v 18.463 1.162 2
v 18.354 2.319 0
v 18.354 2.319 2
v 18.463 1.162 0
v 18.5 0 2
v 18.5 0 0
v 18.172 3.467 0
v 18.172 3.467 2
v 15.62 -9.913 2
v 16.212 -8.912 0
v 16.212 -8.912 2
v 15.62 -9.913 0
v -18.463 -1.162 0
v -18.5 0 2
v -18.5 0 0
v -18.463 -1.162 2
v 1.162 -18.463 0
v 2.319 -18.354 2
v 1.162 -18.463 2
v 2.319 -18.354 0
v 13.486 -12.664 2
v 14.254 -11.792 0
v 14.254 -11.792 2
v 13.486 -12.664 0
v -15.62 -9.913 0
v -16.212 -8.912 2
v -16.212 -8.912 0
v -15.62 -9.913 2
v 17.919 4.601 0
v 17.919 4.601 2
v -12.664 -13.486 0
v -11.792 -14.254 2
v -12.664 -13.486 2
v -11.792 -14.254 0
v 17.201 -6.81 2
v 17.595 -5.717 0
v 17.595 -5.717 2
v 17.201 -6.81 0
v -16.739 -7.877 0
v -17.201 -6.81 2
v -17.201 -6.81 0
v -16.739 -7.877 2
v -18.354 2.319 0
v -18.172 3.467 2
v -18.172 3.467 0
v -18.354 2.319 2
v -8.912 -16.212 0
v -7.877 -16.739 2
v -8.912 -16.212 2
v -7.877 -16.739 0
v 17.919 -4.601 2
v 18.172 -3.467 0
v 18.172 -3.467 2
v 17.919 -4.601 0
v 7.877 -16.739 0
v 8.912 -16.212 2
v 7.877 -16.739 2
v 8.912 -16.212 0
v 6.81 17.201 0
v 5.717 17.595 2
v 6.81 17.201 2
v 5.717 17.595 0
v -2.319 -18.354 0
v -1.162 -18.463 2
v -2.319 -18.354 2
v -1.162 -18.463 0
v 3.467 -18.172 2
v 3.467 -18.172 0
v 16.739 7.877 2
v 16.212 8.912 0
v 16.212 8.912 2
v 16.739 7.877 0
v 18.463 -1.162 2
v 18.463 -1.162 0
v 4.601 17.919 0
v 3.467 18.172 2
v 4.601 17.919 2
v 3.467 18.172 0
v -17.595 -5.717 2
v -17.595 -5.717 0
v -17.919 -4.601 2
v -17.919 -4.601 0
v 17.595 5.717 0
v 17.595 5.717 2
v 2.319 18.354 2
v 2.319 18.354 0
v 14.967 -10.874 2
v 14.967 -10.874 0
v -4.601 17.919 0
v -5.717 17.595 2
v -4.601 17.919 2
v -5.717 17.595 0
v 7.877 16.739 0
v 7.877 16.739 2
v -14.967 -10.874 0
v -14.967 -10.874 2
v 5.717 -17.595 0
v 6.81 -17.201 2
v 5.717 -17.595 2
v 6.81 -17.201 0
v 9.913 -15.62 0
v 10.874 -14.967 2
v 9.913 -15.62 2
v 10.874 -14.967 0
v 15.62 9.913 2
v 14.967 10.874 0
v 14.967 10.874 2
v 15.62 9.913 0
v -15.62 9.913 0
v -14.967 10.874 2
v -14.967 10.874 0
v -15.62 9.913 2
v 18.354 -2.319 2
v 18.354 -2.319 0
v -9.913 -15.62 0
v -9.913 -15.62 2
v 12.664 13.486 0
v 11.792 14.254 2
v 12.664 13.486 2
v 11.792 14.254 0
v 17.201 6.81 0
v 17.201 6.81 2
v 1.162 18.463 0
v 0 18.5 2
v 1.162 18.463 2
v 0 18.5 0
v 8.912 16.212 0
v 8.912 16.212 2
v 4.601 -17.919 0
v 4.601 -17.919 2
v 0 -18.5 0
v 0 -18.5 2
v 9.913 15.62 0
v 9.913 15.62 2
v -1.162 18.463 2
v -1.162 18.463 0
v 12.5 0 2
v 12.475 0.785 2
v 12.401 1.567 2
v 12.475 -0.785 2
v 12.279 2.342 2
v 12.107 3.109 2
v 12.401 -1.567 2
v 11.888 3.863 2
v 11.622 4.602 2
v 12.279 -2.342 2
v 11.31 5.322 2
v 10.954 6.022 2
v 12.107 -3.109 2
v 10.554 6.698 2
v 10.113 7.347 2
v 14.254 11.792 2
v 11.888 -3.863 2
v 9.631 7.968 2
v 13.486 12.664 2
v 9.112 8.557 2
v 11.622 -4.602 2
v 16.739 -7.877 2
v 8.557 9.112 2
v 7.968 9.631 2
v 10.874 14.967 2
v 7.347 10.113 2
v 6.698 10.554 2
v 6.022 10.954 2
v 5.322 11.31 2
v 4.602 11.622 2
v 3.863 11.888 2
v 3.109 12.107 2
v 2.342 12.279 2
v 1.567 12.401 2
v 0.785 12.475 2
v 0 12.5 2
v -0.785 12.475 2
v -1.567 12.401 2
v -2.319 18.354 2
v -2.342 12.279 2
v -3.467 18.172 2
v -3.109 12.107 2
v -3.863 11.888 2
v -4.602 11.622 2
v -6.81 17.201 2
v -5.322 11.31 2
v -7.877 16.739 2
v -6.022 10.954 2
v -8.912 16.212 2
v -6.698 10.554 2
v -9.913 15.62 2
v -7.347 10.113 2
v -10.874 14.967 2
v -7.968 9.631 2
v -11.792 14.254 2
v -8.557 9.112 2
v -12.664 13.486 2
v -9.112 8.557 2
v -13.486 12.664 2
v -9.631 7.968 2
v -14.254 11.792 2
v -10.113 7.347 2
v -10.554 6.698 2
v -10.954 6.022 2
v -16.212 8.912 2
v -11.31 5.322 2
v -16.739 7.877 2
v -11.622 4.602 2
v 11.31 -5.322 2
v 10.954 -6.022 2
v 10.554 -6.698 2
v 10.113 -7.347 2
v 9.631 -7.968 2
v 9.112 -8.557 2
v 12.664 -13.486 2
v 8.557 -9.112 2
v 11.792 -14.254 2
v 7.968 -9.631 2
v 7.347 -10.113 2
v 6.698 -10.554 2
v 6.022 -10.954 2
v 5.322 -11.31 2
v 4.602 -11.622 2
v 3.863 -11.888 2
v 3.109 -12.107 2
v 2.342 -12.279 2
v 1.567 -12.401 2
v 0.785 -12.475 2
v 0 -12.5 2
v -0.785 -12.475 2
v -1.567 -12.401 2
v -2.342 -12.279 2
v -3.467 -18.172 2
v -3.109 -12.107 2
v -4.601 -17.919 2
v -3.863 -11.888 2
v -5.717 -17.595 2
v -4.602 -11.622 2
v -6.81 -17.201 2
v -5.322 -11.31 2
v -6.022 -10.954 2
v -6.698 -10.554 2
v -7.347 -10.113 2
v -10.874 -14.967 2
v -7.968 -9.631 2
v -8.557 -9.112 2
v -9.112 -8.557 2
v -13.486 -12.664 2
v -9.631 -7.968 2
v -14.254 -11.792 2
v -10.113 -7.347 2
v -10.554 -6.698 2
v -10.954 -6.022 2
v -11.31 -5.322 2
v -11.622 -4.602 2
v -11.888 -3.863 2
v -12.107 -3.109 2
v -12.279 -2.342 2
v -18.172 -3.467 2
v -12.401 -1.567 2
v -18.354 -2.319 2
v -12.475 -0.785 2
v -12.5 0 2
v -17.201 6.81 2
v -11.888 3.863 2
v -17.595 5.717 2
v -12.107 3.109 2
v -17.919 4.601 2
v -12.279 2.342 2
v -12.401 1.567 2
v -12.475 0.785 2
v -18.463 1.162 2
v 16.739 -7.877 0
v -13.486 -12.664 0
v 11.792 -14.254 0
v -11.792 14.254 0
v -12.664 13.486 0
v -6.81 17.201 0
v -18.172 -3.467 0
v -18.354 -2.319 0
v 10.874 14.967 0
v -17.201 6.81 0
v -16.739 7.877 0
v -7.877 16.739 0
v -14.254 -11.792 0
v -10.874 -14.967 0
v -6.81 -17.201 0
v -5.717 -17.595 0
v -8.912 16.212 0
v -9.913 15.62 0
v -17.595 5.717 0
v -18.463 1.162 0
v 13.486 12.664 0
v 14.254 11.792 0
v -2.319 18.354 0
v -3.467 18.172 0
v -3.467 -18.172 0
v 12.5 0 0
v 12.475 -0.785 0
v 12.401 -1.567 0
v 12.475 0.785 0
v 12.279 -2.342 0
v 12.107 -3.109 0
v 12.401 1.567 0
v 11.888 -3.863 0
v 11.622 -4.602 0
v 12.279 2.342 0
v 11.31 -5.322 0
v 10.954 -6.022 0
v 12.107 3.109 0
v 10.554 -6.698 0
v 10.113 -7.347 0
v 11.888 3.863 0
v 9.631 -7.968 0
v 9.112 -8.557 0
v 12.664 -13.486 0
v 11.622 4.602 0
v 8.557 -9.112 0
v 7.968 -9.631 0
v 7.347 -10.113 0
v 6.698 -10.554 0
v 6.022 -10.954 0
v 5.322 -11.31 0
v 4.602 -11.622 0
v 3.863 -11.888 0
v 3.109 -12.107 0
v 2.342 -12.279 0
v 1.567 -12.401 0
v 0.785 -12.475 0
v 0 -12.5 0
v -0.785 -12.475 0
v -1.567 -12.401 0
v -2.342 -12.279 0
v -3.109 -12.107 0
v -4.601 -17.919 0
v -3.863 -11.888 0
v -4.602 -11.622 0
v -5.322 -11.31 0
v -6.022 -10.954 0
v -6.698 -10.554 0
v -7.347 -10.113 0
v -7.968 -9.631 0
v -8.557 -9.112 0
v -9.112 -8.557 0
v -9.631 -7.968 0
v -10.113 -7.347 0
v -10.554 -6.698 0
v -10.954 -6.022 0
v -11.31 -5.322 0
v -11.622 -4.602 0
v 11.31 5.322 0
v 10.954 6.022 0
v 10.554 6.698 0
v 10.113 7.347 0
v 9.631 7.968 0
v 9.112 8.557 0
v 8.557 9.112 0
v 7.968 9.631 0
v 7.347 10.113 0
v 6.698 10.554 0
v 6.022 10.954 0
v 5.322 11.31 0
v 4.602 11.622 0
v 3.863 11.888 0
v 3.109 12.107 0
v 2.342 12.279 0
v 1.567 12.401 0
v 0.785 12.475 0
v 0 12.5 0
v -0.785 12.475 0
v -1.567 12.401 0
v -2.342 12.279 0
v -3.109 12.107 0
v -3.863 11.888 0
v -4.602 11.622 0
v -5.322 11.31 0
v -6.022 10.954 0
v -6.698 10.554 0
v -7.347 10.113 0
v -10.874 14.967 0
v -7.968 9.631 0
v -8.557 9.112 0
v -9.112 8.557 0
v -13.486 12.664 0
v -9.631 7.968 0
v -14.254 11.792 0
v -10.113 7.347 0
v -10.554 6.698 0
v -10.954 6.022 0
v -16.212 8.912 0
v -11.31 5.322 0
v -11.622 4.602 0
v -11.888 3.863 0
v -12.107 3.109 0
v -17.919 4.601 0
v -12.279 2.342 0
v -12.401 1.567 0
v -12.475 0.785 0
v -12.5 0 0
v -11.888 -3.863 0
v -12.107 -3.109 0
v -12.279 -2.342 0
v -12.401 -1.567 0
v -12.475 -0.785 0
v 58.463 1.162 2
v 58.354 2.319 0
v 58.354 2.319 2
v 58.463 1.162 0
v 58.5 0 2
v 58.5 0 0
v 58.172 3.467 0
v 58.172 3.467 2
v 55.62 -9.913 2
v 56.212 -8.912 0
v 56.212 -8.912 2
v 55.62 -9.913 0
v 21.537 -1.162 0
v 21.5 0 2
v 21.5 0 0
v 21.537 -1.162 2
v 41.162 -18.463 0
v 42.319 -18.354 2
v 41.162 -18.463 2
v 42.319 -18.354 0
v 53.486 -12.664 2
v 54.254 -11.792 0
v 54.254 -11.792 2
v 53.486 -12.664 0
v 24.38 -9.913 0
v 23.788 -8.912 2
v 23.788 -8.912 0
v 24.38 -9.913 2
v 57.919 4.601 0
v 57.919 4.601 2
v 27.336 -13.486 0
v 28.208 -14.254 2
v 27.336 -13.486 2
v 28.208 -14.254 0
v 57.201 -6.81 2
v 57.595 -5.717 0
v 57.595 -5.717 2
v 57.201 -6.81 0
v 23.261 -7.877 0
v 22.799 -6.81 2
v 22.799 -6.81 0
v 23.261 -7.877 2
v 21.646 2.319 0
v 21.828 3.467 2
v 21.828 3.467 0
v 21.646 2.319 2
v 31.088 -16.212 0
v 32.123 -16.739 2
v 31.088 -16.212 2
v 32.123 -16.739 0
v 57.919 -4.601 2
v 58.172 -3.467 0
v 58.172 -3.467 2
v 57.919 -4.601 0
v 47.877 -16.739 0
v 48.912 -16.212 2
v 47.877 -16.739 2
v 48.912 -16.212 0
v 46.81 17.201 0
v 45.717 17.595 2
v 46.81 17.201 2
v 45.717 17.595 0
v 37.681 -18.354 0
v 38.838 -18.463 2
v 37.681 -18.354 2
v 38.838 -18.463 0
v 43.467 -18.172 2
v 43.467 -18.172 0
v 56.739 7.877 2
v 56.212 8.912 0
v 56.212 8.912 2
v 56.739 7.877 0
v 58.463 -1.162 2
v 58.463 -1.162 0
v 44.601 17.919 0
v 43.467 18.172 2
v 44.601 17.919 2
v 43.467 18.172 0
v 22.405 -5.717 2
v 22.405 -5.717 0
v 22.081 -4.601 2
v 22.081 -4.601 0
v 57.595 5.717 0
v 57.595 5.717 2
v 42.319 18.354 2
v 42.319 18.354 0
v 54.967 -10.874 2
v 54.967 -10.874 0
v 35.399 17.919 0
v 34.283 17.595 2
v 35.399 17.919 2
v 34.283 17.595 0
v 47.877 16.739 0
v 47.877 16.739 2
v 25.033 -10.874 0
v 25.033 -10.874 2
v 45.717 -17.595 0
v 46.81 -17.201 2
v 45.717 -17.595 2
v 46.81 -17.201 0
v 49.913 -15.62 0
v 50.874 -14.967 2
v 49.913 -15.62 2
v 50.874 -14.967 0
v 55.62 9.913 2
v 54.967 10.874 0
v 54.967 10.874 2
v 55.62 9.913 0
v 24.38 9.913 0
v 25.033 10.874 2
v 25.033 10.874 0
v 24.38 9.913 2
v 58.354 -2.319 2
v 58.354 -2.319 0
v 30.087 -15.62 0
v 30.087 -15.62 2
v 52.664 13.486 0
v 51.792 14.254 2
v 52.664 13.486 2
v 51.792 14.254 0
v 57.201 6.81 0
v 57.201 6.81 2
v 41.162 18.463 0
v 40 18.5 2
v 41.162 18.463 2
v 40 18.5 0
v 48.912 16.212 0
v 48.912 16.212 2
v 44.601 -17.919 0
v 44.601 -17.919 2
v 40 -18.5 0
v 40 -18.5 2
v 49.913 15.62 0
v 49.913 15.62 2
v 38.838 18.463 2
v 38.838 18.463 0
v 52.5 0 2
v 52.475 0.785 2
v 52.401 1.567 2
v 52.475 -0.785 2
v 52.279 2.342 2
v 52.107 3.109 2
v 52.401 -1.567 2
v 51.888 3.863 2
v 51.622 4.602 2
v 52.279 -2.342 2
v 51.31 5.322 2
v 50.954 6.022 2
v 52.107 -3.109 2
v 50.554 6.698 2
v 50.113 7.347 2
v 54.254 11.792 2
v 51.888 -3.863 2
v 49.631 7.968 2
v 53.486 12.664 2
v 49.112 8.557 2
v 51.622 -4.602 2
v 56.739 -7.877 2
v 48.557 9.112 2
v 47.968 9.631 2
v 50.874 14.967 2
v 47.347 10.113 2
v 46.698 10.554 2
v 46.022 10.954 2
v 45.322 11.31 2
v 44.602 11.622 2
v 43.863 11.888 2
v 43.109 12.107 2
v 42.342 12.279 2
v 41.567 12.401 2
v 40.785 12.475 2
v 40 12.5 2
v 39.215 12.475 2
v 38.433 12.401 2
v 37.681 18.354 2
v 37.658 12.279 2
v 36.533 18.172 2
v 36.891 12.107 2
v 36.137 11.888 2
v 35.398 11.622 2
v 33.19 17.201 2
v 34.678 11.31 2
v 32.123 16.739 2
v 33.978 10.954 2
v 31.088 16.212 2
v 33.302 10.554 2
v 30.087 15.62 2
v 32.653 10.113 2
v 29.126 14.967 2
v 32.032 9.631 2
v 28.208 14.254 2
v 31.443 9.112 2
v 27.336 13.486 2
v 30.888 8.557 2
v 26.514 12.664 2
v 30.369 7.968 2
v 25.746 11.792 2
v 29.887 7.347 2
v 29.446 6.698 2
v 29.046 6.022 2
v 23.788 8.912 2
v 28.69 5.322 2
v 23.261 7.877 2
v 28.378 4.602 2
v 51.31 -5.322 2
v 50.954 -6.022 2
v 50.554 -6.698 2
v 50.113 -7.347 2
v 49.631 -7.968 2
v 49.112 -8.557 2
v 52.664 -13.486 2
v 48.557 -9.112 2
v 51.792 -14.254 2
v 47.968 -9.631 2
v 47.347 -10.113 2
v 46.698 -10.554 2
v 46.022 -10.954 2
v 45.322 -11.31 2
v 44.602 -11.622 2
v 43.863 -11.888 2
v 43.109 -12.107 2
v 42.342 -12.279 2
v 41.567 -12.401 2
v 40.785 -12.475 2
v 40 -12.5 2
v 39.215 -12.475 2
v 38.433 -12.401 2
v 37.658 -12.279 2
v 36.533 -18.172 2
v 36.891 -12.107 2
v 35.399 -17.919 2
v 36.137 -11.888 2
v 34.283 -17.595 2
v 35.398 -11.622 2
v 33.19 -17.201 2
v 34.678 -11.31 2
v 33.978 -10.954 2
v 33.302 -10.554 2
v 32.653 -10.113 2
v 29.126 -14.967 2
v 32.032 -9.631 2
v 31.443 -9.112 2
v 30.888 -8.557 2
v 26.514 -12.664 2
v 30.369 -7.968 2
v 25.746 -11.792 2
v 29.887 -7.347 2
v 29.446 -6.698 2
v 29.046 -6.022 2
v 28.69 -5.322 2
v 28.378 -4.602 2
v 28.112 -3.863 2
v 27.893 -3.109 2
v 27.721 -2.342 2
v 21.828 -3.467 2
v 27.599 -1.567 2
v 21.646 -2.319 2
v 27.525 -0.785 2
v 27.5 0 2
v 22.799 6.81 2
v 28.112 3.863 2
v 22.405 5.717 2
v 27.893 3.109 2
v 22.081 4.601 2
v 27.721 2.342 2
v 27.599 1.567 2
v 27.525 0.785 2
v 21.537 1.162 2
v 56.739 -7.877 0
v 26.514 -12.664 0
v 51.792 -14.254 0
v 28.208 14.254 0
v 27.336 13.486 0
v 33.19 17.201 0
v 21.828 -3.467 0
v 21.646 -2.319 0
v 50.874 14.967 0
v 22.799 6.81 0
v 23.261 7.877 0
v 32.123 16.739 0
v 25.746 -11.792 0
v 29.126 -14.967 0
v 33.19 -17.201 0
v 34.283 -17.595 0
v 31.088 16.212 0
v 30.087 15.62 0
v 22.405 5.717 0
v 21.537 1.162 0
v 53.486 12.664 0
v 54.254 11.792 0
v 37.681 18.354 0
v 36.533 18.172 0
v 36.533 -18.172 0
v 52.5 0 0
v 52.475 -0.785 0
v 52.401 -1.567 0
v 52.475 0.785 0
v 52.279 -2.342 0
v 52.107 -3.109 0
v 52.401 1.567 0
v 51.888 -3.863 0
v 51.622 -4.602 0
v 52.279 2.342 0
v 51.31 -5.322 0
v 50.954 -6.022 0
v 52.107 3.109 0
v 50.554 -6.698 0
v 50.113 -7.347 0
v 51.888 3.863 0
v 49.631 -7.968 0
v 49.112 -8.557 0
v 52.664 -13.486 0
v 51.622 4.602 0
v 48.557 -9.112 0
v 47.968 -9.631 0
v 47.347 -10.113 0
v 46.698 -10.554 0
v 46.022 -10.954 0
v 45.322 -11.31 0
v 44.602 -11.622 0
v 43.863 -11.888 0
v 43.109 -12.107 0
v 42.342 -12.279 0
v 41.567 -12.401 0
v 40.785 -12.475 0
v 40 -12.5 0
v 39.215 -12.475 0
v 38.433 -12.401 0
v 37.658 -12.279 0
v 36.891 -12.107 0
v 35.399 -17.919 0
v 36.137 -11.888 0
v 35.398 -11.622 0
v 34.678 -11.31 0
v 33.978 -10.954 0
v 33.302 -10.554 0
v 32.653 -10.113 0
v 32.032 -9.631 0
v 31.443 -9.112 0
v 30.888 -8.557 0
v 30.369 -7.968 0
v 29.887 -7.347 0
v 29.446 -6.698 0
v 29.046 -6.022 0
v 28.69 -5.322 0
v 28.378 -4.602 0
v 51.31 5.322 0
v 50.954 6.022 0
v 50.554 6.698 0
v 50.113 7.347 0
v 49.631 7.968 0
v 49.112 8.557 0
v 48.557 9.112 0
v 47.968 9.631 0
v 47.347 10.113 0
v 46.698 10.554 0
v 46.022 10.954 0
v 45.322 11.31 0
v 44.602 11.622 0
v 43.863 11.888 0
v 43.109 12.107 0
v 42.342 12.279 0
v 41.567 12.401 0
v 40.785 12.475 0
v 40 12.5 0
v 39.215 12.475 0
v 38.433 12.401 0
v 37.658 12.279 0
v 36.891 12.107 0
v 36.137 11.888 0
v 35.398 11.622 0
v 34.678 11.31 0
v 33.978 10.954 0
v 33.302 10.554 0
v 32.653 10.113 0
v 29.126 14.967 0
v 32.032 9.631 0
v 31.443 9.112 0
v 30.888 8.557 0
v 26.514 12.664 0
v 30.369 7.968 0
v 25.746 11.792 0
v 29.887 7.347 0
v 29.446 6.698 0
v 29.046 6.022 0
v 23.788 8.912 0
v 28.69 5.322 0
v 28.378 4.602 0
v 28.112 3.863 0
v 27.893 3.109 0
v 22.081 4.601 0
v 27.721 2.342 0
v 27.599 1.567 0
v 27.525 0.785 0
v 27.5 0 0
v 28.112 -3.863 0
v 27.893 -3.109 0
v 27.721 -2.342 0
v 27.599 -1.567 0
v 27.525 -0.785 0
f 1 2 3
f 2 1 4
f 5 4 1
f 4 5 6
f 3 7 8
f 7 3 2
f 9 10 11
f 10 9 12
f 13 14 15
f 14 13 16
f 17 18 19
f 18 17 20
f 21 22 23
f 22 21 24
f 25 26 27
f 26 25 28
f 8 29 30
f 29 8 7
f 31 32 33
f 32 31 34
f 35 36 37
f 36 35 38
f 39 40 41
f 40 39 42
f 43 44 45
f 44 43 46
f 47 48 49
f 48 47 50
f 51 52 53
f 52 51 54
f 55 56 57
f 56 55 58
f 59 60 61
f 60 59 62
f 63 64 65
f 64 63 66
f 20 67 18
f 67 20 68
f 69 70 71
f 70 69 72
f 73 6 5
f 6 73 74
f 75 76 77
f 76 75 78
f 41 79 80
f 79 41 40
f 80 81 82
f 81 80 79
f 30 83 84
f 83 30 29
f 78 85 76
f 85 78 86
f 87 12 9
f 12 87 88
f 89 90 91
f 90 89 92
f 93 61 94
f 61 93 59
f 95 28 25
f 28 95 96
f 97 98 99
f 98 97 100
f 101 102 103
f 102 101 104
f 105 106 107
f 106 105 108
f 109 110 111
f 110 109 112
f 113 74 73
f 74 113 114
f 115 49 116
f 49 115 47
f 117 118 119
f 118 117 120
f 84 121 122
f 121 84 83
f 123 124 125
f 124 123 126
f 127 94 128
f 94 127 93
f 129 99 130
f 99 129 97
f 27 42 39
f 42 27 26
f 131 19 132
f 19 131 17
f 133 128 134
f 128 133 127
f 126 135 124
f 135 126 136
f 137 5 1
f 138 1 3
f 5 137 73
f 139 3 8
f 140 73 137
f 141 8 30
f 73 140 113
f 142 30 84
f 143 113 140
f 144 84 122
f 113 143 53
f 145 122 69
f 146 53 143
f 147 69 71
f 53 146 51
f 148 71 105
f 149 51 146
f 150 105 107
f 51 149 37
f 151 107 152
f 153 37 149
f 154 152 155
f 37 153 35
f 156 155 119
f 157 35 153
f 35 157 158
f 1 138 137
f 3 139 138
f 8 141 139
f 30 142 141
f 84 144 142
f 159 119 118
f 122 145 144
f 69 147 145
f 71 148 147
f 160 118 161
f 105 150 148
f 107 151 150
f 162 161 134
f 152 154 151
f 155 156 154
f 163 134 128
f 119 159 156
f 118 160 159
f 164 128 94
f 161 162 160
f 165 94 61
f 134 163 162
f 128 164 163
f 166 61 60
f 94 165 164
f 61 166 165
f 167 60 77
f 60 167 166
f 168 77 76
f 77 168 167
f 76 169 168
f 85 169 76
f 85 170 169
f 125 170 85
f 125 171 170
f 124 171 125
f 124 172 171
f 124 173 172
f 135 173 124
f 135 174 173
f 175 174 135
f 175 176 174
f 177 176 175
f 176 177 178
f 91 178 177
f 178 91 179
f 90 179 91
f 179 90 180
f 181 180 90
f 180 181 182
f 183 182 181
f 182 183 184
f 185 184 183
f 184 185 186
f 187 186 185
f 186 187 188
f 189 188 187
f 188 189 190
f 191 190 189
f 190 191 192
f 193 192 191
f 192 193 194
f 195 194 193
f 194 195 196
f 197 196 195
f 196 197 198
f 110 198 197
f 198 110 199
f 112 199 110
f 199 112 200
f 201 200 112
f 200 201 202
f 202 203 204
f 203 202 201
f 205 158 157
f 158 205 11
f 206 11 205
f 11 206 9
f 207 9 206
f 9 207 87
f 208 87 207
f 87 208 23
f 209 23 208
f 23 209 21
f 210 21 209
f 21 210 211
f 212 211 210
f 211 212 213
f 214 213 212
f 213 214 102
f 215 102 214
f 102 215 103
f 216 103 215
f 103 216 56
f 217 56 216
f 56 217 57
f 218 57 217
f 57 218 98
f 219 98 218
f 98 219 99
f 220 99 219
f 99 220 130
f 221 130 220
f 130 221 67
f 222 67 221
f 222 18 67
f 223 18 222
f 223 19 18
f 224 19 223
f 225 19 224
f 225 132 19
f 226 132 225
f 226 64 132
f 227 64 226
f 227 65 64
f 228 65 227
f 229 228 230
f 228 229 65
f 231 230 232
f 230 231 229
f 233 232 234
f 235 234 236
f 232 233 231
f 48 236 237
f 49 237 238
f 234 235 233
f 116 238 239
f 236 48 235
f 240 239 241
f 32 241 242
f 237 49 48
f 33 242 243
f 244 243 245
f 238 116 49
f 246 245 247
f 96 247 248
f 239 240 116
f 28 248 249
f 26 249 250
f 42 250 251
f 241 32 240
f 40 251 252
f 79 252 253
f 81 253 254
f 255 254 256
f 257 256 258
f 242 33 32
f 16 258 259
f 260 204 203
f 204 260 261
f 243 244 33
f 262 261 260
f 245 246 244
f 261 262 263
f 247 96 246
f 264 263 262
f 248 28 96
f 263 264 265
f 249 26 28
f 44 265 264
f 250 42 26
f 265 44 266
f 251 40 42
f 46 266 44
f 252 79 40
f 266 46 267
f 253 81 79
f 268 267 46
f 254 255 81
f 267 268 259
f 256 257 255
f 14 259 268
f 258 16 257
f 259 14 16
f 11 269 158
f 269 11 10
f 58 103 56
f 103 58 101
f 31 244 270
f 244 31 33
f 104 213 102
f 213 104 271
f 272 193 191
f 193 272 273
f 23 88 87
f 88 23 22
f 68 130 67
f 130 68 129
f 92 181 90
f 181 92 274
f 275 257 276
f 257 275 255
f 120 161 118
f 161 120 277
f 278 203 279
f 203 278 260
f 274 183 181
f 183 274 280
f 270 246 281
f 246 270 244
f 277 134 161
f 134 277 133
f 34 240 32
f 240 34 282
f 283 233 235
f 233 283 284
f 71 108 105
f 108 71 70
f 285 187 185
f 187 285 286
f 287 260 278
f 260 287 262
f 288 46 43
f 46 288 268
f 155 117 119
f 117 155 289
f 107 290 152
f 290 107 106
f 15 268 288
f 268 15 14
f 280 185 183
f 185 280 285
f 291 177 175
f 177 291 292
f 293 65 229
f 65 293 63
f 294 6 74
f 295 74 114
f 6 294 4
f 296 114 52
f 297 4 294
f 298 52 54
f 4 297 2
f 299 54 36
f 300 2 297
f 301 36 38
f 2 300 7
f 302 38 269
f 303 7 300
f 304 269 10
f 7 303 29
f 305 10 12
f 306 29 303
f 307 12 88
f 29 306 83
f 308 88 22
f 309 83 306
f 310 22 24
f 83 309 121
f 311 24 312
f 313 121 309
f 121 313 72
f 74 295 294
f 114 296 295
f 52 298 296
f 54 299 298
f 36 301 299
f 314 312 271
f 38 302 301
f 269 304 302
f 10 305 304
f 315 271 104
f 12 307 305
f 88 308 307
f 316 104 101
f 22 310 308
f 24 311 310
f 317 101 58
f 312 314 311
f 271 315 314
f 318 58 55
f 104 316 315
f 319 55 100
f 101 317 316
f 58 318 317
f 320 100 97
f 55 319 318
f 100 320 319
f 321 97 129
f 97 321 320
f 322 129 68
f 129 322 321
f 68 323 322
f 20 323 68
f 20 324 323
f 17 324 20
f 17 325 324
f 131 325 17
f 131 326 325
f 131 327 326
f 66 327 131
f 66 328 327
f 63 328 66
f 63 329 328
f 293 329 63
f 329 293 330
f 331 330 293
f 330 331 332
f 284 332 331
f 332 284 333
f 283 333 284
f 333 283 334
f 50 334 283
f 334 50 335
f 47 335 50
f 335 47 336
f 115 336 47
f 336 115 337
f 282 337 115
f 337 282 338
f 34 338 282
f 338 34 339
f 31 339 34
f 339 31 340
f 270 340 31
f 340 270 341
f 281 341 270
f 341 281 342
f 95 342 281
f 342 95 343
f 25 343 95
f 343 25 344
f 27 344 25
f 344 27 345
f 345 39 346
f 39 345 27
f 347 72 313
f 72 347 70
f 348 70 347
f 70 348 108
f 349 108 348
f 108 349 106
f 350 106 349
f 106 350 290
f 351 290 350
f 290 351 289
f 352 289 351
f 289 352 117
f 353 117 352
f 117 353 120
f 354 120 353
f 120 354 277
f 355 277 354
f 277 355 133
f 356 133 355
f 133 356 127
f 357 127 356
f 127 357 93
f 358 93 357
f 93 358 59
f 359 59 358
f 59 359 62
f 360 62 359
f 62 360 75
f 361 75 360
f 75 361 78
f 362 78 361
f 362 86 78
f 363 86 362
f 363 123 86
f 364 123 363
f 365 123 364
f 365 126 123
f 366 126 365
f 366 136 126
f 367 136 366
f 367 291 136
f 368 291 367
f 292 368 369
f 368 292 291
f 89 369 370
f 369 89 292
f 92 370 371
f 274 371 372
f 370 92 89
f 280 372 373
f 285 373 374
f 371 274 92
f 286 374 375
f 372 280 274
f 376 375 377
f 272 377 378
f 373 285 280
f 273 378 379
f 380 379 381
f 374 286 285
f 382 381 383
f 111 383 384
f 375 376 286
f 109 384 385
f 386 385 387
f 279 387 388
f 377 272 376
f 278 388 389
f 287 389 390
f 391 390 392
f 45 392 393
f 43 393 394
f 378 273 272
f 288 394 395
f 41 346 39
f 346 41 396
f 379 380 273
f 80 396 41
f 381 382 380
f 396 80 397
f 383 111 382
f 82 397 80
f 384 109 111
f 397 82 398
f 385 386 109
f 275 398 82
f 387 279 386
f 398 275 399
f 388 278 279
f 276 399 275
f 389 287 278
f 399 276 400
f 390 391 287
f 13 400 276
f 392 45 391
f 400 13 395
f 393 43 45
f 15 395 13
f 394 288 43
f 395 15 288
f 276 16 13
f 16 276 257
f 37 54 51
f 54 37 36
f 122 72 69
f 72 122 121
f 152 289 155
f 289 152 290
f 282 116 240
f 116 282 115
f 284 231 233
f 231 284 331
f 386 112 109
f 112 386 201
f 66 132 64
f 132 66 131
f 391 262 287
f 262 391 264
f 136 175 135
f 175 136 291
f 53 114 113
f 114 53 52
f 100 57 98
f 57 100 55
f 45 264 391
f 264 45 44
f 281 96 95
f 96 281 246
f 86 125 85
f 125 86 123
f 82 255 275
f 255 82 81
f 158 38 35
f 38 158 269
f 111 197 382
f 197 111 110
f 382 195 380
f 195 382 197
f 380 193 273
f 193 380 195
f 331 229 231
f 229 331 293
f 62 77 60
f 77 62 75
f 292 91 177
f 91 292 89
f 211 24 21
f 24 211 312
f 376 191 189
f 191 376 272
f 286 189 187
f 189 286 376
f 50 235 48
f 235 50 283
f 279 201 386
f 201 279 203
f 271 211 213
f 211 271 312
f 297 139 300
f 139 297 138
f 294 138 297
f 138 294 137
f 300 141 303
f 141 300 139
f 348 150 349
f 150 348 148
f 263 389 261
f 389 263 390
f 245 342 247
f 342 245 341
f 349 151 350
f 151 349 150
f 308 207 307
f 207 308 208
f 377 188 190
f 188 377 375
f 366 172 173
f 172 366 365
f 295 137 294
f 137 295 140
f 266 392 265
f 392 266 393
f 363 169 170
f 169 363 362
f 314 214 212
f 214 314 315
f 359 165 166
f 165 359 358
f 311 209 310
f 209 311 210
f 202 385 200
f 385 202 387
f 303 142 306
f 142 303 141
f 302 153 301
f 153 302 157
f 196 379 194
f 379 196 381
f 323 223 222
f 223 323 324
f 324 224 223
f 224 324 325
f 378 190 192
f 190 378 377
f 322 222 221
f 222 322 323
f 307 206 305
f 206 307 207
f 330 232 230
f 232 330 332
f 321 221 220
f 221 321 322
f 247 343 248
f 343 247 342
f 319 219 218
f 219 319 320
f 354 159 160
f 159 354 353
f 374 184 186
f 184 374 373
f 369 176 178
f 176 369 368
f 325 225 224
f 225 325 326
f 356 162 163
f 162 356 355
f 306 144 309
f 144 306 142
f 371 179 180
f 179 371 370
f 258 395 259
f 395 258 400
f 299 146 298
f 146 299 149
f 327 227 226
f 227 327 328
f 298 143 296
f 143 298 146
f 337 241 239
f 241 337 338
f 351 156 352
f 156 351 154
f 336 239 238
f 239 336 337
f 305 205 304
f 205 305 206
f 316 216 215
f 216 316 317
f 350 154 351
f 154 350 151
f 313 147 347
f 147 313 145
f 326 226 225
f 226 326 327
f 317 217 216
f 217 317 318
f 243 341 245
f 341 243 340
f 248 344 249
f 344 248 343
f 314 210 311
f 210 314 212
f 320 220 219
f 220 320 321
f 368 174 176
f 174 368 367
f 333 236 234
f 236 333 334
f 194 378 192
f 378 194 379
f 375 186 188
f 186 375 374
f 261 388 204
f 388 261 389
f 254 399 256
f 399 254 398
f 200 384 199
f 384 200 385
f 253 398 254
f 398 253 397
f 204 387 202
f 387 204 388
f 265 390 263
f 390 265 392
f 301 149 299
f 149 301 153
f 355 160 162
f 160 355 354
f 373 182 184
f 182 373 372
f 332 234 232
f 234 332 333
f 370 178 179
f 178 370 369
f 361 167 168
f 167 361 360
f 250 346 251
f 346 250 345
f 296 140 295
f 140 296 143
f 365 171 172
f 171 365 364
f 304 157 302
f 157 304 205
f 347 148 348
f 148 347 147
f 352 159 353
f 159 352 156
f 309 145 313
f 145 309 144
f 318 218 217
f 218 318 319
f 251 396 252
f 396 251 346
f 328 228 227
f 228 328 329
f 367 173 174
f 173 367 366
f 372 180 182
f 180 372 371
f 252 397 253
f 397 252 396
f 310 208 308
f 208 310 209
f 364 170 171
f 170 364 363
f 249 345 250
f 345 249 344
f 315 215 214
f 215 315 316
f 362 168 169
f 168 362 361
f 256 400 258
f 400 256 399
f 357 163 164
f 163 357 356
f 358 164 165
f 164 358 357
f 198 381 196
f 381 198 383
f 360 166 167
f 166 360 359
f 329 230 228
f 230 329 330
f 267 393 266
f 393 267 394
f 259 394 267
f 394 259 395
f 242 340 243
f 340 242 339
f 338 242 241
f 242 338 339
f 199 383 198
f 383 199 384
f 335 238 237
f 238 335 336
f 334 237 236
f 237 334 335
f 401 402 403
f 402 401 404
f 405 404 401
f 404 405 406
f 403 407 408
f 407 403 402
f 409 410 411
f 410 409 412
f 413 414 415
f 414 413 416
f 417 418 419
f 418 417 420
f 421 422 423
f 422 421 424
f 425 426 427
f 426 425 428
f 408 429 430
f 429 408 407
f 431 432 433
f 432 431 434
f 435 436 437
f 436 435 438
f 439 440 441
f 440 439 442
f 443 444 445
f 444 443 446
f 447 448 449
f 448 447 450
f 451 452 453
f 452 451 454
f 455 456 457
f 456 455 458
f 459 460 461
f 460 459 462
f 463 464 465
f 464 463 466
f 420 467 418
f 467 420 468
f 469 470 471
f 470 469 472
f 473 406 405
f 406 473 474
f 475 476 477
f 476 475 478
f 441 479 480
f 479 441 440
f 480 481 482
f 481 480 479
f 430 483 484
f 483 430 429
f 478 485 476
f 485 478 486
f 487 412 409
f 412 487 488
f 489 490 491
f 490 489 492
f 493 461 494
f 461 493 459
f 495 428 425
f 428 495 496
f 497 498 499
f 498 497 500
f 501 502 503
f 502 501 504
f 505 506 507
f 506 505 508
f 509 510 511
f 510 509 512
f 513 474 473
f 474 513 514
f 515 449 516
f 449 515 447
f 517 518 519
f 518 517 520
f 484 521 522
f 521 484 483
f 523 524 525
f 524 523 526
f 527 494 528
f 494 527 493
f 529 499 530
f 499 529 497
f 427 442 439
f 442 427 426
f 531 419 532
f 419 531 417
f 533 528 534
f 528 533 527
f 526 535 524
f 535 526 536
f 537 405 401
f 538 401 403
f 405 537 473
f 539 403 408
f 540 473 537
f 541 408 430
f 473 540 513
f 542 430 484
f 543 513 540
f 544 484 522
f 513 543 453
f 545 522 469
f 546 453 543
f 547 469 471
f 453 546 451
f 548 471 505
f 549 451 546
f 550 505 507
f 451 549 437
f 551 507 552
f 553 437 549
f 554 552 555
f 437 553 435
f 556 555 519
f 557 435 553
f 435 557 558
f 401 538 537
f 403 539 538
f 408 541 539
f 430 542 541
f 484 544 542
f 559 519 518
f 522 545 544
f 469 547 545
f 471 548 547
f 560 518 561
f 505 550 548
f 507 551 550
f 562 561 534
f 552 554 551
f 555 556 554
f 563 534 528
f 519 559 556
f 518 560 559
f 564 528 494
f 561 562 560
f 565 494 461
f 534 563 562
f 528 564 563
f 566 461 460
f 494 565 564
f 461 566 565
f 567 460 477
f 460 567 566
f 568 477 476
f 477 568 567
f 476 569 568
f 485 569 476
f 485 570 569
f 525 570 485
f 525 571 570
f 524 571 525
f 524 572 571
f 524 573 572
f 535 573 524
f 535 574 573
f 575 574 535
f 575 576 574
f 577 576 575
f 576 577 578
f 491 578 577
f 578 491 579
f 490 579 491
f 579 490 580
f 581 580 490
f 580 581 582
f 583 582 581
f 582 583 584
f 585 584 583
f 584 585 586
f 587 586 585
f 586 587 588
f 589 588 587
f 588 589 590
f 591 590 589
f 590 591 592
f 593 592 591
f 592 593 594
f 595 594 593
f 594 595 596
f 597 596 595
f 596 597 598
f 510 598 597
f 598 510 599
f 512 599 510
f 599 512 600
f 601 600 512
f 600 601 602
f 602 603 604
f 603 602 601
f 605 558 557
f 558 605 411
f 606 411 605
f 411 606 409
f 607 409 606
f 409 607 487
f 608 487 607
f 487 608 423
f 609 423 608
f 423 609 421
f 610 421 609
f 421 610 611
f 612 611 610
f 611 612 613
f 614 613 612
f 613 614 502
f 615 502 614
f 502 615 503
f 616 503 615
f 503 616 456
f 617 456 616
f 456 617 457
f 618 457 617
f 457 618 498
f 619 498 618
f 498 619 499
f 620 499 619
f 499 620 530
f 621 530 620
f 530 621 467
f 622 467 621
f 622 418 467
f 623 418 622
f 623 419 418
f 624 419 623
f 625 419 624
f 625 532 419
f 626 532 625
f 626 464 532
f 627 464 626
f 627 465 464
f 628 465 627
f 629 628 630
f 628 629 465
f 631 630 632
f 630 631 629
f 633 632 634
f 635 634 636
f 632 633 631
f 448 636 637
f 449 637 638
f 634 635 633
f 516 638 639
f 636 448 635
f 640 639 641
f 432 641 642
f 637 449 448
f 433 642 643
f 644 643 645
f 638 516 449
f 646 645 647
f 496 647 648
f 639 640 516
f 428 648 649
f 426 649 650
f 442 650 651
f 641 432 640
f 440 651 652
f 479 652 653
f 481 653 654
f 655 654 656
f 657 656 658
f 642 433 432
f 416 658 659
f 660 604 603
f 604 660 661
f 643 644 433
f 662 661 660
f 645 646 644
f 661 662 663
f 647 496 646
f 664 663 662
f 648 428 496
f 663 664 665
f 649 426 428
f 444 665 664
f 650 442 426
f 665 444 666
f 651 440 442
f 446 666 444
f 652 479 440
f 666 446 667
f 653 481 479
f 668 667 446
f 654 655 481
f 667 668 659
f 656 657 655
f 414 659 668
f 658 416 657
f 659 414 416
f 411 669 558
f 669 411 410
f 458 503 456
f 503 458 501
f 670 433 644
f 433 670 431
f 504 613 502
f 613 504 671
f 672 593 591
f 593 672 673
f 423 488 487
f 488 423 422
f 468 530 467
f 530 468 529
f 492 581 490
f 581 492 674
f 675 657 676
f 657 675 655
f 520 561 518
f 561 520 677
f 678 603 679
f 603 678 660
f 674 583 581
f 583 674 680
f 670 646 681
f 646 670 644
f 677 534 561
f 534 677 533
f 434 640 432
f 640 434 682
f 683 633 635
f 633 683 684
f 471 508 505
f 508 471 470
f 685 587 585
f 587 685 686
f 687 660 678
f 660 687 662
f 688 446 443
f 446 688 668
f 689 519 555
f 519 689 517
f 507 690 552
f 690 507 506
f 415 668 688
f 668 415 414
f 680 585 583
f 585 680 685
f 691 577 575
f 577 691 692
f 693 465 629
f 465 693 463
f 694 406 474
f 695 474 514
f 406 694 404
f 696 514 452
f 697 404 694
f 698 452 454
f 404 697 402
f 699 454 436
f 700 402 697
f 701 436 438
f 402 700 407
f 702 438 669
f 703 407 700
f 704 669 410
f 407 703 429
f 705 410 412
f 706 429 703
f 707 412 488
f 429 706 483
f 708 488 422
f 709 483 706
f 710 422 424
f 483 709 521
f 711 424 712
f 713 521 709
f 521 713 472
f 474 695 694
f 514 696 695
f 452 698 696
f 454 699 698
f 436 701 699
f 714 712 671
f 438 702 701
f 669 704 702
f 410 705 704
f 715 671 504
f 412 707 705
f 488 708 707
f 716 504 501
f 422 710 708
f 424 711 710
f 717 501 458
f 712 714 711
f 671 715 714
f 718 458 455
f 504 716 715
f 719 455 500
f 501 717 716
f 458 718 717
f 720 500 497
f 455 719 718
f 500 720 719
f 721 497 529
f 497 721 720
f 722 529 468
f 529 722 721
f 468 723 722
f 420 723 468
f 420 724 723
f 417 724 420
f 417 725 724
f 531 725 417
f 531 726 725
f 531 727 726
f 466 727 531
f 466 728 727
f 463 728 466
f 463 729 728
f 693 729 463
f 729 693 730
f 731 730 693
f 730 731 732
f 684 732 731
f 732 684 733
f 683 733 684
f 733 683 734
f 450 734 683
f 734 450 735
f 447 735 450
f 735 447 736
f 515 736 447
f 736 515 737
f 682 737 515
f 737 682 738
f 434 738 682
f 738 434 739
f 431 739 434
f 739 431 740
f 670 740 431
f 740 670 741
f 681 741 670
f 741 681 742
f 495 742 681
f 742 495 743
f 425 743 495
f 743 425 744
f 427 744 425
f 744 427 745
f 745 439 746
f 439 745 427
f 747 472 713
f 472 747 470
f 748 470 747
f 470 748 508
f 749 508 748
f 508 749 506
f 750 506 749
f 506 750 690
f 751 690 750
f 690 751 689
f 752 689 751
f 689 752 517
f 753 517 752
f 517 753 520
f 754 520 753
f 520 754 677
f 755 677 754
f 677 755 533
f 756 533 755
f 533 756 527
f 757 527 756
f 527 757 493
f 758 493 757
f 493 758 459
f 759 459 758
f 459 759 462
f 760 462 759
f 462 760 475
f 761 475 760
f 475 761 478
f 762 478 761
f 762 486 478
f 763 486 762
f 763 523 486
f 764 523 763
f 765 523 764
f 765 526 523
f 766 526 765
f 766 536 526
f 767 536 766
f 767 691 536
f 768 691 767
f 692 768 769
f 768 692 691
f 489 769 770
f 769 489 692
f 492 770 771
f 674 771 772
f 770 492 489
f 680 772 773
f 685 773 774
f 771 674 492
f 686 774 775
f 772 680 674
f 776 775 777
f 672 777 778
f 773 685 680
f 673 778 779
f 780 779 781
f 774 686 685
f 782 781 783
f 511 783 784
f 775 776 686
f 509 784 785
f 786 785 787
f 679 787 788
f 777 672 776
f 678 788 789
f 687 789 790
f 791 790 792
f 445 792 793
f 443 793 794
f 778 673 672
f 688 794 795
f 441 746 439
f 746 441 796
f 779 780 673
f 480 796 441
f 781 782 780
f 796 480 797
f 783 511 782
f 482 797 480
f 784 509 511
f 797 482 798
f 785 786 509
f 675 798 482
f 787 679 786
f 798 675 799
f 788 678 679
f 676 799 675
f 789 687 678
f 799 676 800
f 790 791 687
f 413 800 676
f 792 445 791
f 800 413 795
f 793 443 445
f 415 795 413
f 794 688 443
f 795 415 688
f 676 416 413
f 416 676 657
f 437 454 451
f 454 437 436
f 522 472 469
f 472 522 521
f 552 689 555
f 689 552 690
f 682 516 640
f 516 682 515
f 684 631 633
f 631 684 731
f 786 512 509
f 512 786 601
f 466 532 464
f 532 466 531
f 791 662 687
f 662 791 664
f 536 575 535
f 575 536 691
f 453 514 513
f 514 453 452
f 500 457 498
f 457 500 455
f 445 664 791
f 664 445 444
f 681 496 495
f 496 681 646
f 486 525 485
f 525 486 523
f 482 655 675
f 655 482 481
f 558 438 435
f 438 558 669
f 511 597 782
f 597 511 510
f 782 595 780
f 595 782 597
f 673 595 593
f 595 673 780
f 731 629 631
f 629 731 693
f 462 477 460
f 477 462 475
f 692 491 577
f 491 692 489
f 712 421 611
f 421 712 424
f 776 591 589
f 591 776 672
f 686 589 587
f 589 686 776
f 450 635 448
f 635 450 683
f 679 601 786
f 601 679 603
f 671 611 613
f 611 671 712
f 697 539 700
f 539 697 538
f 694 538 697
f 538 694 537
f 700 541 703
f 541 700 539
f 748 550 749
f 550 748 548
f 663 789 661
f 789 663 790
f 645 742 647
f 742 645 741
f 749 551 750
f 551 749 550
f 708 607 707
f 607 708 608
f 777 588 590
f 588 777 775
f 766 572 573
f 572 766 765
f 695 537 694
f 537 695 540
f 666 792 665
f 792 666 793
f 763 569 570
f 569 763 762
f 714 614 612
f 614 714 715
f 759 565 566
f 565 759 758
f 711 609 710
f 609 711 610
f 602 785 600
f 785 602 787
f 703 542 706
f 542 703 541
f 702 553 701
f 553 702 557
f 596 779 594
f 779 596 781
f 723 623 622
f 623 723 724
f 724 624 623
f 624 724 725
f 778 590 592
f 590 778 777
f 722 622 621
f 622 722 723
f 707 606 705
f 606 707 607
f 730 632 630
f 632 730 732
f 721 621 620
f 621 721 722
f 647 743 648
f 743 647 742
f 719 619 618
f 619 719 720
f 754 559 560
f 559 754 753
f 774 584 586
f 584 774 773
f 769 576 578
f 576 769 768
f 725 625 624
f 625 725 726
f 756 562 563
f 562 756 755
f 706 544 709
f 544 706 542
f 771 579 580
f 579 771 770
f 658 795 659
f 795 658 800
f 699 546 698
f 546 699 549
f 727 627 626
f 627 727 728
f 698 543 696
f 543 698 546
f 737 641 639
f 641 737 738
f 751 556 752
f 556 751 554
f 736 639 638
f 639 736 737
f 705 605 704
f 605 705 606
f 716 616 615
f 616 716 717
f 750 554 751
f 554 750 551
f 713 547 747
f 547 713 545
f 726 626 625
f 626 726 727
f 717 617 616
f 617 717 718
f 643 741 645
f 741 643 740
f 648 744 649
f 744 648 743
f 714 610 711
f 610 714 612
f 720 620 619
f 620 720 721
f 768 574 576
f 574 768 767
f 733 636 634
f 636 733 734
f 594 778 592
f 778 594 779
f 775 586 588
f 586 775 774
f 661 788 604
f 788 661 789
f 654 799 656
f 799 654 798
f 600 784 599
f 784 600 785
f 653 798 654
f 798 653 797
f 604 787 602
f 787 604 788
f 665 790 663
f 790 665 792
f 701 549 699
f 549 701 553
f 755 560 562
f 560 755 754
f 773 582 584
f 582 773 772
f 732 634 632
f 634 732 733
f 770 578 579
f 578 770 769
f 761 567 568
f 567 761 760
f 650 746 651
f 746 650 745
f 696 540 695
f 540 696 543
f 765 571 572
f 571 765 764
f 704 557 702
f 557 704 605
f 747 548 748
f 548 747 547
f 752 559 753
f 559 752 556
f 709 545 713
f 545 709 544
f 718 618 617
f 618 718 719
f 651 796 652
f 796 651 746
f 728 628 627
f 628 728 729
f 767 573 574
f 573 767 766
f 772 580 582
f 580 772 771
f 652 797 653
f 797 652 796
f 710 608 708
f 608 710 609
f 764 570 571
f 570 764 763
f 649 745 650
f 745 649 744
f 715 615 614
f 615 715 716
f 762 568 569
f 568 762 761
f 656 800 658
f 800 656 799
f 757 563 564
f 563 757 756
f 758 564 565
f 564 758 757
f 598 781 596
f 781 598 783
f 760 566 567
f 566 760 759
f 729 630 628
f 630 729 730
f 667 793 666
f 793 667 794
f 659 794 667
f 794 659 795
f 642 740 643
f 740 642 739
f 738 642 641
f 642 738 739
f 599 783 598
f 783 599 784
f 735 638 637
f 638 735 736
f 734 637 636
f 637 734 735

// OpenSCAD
// Digital Synesthesia: VR Lens Holder - Middle Layer (SCAD)
// Specs: 37mm OD, 2mm Thickness.
// Aperture: 25mm.
// Quantity: 2 Discs.

$fn = 100; // Smoothness

// Disc 1 (25mm ID, 2mm Thick)
translate([0, 0, 0]) {
    difference() {
        cylinder(r=18.5, h=2); 
        translate([0,0,-1]) cylinder(r=12.5, h=4); // 25mm ID / 2 = 12.5mm Radius
    }
}

// Disc 2 (25mm ID, 2mm Thick)
translate([40, 0, 0]) {
    difference() {
        cylinder(r=18.5, h=2); 
        translate([0,0,-1]) cylinder(r=12.5, h=4); // 25mm ID / 2 = 12.5mm Radius
    }
}
